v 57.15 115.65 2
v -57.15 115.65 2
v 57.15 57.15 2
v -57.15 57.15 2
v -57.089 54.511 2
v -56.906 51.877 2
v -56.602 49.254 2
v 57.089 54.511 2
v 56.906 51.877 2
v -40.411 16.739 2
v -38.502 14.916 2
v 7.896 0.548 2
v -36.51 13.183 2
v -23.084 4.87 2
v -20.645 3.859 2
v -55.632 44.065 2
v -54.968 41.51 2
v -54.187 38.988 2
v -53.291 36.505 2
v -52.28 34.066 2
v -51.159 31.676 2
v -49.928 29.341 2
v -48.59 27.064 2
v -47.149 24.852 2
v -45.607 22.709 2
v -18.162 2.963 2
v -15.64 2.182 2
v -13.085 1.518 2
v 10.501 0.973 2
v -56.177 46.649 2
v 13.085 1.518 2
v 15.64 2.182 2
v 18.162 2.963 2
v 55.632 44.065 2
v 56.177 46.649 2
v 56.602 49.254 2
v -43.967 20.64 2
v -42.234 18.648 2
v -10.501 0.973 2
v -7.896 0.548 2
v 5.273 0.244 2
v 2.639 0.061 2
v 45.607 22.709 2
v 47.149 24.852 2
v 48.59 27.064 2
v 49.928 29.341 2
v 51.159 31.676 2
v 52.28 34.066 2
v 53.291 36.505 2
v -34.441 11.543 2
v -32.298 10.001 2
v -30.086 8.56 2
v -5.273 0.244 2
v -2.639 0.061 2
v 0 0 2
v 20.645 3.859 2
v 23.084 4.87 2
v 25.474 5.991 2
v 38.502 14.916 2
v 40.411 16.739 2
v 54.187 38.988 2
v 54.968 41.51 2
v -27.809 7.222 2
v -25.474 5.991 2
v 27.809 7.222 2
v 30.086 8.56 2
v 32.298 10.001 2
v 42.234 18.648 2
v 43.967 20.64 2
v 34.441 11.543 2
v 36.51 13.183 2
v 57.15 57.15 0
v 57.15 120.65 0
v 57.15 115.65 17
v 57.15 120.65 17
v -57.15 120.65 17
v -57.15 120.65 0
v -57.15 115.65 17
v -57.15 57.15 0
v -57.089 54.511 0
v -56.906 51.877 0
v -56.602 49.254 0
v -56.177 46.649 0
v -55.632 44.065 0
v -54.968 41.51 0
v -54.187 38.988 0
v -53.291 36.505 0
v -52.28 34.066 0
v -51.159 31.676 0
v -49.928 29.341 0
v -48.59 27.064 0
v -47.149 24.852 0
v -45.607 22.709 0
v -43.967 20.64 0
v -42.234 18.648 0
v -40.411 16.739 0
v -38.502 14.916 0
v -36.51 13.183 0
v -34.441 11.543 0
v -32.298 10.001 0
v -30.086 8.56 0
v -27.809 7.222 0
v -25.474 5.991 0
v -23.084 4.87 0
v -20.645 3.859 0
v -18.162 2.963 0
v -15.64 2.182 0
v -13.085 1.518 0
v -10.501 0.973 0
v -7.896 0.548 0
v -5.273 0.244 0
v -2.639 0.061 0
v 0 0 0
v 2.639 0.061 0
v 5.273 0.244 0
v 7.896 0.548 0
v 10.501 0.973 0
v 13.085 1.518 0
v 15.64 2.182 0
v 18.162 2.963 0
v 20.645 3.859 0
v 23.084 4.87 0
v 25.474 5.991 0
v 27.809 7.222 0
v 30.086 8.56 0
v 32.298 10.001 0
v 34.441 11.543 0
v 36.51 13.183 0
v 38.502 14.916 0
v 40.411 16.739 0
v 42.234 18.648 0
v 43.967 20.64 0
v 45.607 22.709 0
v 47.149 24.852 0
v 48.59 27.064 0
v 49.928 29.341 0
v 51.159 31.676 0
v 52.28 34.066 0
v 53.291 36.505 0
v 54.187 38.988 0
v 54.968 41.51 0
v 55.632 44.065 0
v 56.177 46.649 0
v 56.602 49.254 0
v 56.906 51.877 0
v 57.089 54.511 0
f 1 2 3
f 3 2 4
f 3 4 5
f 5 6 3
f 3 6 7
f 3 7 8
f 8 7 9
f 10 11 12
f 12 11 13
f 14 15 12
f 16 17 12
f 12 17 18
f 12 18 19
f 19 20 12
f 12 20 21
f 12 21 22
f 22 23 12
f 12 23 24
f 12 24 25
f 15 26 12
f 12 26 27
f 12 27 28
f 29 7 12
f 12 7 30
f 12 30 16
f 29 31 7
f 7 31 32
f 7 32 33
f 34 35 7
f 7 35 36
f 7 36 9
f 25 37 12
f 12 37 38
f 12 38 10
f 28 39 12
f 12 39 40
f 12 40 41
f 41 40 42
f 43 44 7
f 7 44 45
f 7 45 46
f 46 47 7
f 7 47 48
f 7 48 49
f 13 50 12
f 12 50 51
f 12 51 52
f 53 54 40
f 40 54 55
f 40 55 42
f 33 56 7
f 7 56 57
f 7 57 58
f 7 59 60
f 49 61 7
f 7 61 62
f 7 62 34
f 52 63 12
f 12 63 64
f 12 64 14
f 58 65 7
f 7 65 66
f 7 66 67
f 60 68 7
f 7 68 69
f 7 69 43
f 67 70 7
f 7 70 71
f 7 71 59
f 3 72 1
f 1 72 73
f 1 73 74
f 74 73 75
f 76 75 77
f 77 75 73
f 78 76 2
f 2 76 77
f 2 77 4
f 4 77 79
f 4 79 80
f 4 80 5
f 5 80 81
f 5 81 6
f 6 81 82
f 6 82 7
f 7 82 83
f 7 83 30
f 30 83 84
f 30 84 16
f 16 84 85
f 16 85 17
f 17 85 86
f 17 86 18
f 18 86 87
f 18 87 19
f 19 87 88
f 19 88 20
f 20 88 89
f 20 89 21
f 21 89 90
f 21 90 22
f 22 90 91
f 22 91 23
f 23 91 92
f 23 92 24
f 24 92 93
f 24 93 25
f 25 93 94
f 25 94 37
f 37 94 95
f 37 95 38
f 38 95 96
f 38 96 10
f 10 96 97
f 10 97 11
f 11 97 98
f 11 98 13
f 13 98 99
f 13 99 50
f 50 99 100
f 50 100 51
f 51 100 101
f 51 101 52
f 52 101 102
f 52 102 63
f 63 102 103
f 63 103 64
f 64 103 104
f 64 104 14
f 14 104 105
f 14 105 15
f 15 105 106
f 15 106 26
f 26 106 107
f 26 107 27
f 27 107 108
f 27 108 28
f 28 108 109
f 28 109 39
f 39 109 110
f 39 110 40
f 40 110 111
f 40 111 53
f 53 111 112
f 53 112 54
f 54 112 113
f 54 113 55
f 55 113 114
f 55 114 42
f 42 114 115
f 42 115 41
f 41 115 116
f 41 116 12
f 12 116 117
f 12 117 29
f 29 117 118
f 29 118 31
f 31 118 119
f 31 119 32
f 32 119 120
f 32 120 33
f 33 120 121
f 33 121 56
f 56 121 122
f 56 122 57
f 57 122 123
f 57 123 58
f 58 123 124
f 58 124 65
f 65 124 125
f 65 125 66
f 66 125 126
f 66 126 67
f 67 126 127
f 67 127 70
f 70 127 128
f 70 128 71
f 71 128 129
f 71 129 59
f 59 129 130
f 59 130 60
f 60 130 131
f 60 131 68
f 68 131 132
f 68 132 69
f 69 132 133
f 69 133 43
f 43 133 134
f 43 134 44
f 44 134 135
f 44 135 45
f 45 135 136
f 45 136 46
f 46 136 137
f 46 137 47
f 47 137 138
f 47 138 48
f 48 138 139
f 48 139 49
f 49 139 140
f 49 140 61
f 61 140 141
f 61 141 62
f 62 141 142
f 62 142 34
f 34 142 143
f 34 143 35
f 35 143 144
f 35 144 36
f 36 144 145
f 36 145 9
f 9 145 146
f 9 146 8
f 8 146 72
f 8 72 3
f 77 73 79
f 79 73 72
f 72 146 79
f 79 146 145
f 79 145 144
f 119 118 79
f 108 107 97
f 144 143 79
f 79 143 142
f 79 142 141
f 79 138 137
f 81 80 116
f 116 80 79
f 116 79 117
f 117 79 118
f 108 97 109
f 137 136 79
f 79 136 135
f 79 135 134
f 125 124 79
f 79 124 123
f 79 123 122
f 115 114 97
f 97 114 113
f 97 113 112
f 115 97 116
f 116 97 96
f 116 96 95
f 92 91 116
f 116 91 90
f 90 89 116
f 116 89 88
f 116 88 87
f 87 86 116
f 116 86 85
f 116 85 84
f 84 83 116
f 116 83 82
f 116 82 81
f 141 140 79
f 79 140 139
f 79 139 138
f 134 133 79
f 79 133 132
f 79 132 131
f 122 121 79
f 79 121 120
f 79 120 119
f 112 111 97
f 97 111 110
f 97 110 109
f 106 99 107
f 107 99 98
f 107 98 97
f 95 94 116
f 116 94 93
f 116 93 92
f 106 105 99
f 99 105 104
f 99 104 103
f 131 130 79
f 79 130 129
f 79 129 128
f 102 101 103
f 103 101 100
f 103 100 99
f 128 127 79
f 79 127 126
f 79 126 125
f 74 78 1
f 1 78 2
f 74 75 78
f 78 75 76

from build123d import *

# Parameters (mm, degrees)
BOSS_EXTRUDE3_DEPTH = 2
SKETCH4_W           = 114.3
SKETCH4_H           = 5
BOSS_EXTRUDE4_DEPTH = 15


with BuildPart() as part:
    # Sketch3 → Boss-Extrude3 (new body)
    with BuildSketch(Plane.XY):
        with BuildLine():
            Line((-57.15, 120.65), (57.15, 120.65))
            Line((57.15, 120.65), (57.15, 57.15))
            ThreePointArc((57.15, 57.15), (0, 0), (-57.15, 57.15))
            Line((-57.15, 57.15), (-57.15, 120.65))
        make_face()
    extrude(amount=BOSS_EXTRUDE3_DEPTH)

    # Sketch4 → Boss-Extrude4 (add)
    with BuildSketch(Plane.XY.offset(2)):
        with Locations((0, 118.15)):
            Rectangle(SKETCH4_W, SKETCH4_H)
    extrude(amount=BOSS_EXTRUDE4_DEPTH)


solid = part.part
